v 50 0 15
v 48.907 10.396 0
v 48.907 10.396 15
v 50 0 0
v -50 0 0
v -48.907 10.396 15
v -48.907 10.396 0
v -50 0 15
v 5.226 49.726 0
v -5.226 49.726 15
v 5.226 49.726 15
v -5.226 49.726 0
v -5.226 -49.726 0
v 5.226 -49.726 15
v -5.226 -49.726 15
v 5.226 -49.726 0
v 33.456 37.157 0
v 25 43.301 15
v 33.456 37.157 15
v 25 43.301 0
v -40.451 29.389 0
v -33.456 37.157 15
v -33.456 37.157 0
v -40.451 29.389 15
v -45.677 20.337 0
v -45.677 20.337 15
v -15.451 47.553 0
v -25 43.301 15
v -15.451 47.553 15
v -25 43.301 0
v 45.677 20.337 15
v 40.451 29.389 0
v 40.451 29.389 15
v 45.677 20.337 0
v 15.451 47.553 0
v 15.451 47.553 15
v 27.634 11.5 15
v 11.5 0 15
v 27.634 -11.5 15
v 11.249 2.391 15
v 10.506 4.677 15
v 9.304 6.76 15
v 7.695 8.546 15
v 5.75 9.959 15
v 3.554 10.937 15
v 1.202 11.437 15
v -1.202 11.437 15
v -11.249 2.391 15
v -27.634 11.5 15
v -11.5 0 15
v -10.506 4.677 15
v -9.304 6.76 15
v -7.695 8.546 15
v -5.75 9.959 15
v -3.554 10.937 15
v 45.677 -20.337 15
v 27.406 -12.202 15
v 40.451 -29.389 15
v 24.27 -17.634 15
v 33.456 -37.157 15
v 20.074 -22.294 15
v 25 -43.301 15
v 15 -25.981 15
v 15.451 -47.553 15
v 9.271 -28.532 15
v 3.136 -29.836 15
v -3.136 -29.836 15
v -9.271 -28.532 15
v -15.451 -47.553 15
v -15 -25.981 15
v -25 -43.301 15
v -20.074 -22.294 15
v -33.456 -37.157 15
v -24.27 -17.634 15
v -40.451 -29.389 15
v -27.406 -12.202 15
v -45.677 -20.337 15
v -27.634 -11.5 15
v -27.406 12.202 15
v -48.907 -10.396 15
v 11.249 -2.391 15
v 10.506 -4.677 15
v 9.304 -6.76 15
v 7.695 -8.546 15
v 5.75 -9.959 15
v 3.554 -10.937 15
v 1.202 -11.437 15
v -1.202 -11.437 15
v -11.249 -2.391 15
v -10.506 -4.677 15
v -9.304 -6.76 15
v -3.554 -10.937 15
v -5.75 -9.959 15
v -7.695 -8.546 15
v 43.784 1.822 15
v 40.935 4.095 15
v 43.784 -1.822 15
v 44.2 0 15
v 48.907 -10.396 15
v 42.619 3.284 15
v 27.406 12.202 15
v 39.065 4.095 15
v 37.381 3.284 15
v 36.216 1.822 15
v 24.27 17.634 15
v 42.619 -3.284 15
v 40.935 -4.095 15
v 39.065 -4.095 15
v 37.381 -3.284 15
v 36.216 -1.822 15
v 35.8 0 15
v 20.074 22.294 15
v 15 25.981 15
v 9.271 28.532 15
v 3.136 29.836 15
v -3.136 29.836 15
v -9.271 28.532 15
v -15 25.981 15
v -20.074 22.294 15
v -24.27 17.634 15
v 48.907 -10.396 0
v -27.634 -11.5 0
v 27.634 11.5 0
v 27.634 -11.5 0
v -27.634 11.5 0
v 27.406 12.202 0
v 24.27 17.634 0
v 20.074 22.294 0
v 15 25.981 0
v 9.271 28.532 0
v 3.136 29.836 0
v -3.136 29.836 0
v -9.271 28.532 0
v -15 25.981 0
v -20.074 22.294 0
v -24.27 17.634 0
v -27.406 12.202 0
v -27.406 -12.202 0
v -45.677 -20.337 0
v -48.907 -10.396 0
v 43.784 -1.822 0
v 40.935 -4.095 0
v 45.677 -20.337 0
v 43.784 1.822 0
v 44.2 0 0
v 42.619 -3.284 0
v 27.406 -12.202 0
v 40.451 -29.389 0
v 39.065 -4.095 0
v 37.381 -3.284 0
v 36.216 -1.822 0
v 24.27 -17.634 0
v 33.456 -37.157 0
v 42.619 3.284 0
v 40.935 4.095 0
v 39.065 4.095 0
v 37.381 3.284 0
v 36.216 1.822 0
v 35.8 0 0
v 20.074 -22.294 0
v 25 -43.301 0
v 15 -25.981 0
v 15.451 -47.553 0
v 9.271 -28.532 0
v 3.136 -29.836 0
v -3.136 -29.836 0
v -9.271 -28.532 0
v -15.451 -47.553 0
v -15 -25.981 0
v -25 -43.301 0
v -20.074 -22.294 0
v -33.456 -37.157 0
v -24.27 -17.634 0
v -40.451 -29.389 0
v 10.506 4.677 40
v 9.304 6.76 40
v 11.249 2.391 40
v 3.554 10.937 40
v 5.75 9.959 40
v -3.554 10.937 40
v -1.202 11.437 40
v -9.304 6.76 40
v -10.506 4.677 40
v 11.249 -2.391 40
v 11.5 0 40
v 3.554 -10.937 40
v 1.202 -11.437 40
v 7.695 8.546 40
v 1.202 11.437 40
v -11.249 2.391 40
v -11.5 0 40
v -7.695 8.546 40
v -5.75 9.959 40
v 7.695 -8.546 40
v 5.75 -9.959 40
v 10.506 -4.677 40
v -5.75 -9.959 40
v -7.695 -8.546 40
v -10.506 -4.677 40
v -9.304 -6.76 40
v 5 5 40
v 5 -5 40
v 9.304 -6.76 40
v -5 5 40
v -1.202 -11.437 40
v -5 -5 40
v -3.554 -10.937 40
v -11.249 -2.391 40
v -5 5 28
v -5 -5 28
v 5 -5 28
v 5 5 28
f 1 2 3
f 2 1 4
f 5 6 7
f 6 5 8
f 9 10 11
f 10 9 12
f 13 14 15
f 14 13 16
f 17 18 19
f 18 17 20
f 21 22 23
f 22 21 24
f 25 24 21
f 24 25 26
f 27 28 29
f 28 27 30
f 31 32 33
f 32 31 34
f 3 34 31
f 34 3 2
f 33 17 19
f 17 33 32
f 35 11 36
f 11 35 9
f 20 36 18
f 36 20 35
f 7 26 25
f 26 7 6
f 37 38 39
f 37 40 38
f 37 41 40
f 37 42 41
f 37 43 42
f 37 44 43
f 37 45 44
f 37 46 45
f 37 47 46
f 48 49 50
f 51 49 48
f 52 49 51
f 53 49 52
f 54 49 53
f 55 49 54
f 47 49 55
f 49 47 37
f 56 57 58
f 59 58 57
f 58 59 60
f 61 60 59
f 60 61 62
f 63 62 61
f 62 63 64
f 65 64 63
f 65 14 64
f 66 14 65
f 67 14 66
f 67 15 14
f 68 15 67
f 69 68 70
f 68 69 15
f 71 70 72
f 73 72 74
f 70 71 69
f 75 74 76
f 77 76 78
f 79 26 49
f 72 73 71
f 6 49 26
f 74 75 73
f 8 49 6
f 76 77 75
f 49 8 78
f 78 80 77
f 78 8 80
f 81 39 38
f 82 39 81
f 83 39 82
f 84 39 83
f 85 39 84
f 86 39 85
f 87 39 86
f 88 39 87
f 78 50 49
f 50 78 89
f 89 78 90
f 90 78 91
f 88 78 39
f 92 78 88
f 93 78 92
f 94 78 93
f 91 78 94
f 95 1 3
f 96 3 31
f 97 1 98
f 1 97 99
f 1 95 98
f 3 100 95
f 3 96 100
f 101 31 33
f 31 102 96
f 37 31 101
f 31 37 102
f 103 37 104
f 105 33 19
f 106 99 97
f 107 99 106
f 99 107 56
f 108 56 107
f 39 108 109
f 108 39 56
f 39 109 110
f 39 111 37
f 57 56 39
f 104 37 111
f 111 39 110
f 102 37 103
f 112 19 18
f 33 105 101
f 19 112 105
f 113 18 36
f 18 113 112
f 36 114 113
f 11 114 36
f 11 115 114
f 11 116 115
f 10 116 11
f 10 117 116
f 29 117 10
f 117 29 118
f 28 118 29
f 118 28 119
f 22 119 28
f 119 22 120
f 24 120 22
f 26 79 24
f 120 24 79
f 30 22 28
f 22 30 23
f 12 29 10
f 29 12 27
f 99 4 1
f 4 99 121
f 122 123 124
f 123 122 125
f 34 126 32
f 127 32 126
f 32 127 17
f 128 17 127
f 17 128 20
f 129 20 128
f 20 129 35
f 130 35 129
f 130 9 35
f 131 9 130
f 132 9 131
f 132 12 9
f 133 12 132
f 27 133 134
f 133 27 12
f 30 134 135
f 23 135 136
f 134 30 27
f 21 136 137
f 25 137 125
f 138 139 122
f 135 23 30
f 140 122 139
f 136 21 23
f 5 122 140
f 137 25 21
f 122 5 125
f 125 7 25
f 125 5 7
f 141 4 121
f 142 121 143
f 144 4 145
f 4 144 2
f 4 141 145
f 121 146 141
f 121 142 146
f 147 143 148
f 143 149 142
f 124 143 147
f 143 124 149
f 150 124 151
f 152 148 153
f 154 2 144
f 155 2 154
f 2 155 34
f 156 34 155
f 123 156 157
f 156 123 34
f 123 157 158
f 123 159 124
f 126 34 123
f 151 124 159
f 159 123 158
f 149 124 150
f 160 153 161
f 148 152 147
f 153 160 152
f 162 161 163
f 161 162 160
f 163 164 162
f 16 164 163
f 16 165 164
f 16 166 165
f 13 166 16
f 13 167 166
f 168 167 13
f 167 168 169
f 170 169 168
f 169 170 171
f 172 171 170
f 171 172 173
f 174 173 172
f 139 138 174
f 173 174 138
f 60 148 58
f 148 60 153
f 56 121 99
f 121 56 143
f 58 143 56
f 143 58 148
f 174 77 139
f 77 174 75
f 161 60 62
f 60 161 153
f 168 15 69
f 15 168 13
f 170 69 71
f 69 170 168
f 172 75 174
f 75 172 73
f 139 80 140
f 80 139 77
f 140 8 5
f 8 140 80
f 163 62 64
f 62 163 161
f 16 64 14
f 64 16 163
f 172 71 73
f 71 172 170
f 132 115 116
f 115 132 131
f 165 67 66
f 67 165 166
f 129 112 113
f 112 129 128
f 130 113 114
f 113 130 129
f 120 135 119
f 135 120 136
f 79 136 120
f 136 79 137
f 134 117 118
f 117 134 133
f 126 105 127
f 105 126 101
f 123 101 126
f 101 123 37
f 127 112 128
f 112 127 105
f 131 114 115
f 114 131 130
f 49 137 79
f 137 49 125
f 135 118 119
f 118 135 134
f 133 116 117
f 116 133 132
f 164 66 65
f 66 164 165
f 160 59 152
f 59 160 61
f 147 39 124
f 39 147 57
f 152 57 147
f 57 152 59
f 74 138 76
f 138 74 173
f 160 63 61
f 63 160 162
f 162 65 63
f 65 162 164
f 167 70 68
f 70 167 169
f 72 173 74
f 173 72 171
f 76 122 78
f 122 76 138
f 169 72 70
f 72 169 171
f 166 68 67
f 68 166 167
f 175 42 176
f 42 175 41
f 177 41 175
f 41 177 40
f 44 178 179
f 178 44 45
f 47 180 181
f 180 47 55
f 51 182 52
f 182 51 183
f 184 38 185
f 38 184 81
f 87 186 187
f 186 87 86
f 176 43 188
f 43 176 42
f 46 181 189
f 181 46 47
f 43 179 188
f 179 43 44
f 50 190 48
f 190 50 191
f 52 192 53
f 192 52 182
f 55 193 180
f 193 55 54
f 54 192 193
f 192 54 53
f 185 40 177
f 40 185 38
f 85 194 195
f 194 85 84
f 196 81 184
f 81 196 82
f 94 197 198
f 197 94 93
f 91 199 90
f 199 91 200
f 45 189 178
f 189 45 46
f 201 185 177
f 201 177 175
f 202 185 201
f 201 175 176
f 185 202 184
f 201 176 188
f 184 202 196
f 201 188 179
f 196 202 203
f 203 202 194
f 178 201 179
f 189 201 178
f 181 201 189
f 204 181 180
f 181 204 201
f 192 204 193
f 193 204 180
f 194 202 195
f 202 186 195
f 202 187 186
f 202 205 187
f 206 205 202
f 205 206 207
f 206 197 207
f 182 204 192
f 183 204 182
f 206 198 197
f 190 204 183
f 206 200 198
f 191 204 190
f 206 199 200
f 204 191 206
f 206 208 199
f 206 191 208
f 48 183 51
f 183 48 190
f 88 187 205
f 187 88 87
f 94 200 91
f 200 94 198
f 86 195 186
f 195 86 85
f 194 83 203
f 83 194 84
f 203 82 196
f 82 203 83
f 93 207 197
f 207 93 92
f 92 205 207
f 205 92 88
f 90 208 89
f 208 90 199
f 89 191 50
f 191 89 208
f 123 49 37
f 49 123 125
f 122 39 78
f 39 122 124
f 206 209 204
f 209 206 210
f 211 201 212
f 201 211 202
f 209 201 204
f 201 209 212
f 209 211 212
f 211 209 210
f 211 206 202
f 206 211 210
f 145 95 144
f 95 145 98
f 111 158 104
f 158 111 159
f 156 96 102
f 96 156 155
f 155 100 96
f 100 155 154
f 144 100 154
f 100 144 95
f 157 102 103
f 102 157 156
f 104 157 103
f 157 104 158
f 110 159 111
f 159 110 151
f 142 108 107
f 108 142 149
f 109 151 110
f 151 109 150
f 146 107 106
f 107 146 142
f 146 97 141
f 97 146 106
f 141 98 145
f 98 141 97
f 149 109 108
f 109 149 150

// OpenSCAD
difference(){
    union(){
        difference(){
            cylinder(r=50, h=15);
            translate([0,0,-1])cylinder(r=30,h=17);
        }
        cylinder(r = 23/2, h = 40);
        translate([0,0,15/2])cube([90,23,15],center=true);
    }
    translate([-5,-5,28])cube([10.2,10.2,13]);
    translate([40,0,-1])cylinder(r=4.2, h=17);
}
